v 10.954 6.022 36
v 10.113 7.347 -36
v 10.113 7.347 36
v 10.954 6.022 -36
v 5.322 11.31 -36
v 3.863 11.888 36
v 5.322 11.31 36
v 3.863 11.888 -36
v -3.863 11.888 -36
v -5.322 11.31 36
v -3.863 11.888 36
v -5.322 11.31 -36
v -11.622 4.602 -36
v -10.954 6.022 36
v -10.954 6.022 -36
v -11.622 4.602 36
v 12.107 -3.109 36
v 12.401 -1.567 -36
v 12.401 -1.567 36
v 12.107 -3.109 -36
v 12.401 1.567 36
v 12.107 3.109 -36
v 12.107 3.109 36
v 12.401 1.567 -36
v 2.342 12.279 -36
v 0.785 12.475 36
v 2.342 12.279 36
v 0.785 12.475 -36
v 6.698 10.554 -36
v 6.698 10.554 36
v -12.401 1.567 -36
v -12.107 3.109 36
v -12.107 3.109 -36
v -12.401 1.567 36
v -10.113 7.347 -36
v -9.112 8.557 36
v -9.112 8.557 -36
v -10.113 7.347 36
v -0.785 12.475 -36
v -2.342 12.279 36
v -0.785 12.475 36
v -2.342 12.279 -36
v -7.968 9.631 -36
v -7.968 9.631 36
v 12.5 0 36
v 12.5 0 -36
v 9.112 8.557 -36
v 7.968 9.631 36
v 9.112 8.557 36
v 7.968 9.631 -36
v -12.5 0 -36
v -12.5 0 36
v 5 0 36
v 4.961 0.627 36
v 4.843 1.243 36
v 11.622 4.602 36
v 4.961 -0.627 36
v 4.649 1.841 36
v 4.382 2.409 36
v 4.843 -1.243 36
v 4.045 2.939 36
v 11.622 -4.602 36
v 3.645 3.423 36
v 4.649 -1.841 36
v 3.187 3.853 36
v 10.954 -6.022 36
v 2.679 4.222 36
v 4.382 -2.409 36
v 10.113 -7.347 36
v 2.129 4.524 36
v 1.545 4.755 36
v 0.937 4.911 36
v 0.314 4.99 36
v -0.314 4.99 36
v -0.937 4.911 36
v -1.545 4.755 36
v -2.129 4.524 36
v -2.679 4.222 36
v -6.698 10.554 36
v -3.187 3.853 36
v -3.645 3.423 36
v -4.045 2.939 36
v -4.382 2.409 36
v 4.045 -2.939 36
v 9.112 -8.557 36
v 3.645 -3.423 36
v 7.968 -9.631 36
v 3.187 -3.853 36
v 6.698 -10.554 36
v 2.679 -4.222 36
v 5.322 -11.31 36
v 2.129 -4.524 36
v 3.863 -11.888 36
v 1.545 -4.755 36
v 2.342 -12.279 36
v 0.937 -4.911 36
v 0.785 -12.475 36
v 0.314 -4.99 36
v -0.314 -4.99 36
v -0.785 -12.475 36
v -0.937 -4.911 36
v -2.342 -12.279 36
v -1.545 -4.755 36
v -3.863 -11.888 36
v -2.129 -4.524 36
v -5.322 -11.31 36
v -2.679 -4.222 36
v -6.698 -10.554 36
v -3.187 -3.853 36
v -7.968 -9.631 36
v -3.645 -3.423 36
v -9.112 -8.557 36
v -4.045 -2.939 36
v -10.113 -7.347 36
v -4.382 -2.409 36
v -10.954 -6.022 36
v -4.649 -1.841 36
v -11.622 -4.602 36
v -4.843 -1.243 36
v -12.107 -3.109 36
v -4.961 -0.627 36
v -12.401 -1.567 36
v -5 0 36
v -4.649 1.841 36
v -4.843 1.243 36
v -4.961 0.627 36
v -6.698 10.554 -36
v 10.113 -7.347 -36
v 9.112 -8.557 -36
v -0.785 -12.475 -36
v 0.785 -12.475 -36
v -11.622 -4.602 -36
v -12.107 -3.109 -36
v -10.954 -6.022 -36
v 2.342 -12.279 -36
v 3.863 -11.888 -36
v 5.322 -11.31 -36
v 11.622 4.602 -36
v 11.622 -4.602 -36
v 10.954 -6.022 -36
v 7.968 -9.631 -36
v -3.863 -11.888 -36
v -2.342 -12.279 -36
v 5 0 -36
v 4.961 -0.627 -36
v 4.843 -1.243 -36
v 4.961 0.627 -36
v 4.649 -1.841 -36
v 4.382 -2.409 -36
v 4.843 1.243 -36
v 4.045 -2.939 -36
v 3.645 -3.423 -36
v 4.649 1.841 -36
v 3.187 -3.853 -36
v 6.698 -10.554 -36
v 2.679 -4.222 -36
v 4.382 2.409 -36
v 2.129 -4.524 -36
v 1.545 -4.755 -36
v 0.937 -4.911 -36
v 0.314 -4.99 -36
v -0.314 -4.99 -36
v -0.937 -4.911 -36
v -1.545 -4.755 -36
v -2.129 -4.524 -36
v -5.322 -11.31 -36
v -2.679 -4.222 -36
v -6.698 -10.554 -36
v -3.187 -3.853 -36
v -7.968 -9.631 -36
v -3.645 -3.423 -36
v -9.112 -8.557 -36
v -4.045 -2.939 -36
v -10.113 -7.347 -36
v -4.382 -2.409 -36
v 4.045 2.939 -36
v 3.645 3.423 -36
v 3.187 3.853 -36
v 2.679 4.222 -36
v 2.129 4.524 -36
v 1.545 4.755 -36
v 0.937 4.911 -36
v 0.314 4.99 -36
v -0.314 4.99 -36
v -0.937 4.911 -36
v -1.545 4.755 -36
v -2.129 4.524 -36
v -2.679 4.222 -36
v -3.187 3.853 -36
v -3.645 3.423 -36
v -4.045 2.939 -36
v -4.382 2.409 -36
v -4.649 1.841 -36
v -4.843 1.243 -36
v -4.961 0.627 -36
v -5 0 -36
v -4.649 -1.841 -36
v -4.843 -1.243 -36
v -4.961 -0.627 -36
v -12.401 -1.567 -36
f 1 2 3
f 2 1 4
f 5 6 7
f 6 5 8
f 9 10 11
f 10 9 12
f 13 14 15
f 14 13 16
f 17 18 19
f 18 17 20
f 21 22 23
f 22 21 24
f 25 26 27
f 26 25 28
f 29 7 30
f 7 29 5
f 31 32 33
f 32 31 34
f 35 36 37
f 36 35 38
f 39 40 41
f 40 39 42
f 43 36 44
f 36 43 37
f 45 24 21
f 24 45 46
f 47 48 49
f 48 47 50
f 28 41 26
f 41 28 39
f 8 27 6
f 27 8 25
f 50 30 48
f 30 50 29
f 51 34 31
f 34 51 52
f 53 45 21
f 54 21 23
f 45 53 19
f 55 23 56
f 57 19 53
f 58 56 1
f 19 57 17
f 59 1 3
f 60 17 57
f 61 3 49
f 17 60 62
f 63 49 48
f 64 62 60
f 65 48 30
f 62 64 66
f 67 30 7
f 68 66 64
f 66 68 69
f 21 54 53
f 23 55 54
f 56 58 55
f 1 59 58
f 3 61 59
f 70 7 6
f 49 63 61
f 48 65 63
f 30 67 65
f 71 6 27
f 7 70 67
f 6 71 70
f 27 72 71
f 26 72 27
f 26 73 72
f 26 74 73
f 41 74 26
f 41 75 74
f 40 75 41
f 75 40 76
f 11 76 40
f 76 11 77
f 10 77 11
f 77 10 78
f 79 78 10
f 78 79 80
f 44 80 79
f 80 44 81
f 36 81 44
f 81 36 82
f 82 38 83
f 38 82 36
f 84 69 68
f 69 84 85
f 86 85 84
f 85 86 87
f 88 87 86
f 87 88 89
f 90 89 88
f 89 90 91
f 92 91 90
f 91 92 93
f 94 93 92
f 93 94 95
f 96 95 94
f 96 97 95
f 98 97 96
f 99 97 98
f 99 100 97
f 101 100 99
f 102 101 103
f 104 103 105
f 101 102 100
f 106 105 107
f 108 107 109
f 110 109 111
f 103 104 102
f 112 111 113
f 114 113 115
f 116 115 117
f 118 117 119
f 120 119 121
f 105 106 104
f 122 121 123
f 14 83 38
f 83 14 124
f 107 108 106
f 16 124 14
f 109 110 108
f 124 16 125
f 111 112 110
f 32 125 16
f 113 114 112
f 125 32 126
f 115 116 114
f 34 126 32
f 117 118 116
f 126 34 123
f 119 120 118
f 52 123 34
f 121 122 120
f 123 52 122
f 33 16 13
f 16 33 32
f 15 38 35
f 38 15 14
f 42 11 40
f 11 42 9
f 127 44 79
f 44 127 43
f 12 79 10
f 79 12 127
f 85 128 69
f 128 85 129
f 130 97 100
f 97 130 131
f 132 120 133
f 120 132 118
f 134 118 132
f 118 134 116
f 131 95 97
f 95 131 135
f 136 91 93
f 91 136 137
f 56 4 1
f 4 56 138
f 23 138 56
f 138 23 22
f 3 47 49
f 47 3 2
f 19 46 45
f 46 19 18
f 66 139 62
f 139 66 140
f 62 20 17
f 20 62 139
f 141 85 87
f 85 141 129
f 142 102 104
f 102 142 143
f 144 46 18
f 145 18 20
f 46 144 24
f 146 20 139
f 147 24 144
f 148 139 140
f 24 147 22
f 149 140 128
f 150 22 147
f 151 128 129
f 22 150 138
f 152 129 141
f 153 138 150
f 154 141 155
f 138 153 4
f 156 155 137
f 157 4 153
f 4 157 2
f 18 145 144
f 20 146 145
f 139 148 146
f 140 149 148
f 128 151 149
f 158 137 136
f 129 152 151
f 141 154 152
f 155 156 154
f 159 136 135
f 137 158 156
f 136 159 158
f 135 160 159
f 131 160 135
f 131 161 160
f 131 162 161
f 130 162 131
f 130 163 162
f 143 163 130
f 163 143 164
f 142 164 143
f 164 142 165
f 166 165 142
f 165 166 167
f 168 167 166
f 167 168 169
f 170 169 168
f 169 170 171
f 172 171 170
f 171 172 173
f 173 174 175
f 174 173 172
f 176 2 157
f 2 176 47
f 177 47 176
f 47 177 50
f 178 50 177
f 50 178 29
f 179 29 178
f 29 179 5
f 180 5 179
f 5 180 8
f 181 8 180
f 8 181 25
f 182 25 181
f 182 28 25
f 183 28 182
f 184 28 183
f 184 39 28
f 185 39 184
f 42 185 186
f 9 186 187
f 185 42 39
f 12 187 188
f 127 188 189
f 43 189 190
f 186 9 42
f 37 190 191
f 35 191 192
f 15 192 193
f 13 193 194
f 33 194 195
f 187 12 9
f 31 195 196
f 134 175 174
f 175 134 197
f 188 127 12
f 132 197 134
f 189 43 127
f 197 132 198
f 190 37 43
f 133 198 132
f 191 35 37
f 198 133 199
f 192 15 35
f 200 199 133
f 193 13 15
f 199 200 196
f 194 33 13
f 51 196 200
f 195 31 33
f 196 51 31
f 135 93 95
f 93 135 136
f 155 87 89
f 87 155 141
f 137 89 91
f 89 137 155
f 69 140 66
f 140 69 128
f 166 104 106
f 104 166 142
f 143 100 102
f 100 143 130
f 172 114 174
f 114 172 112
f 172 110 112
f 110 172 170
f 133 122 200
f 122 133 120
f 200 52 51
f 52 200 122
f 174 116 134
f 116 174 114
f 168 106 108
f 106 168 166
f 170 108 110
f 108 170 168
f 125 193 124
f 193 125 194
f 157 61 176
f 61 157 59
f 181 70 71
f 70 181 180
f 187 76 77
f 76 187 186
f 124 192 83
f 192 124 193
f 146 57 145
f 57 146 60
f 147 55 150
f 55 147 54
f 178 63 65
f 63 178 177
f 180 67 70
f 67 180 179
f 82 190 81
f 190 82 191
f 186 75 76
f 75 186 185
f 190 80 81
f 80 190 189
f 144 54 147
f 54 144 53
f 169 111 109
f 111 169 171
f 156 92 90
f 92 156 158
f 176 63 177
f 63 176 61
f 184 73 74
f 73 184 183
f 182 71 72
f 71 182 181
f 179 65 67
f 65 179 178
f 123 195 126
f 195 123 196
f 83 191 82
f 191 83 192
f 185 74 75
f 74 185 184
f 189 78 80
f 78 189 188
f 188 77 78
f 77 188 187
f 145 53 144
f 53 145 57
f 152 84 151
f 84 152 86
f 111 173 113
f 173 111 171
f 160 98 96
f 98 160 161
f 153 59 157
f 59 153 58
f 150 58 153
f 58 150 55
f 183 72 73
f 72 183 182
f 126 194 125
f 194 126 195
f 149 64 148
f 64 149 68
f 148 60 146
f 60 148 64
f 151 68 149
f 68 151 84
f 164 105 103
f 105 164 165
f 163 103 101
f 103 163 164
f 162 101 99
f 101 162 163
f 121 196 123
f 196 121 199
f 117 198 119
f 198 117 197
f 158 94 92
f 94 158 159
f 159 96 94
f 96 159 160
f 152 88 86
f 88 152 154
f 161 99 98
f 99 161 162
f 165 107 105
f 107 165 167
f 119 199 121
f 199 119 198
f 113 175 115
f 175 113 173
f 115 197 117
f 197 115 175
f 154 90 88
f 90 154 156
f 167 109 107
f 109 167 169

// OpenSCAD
$fn = 50;


difference() {
	union() {
		translate(v = [0, 0, -36.0000000000]) {
			cylinder(h = 72, r = 12.5000000000);
		}
	}
	union() {
		translate(v = [0, 0, -100.0000000000]) {
			cylinder(h = 200, r = 5);
		}
	}
}
